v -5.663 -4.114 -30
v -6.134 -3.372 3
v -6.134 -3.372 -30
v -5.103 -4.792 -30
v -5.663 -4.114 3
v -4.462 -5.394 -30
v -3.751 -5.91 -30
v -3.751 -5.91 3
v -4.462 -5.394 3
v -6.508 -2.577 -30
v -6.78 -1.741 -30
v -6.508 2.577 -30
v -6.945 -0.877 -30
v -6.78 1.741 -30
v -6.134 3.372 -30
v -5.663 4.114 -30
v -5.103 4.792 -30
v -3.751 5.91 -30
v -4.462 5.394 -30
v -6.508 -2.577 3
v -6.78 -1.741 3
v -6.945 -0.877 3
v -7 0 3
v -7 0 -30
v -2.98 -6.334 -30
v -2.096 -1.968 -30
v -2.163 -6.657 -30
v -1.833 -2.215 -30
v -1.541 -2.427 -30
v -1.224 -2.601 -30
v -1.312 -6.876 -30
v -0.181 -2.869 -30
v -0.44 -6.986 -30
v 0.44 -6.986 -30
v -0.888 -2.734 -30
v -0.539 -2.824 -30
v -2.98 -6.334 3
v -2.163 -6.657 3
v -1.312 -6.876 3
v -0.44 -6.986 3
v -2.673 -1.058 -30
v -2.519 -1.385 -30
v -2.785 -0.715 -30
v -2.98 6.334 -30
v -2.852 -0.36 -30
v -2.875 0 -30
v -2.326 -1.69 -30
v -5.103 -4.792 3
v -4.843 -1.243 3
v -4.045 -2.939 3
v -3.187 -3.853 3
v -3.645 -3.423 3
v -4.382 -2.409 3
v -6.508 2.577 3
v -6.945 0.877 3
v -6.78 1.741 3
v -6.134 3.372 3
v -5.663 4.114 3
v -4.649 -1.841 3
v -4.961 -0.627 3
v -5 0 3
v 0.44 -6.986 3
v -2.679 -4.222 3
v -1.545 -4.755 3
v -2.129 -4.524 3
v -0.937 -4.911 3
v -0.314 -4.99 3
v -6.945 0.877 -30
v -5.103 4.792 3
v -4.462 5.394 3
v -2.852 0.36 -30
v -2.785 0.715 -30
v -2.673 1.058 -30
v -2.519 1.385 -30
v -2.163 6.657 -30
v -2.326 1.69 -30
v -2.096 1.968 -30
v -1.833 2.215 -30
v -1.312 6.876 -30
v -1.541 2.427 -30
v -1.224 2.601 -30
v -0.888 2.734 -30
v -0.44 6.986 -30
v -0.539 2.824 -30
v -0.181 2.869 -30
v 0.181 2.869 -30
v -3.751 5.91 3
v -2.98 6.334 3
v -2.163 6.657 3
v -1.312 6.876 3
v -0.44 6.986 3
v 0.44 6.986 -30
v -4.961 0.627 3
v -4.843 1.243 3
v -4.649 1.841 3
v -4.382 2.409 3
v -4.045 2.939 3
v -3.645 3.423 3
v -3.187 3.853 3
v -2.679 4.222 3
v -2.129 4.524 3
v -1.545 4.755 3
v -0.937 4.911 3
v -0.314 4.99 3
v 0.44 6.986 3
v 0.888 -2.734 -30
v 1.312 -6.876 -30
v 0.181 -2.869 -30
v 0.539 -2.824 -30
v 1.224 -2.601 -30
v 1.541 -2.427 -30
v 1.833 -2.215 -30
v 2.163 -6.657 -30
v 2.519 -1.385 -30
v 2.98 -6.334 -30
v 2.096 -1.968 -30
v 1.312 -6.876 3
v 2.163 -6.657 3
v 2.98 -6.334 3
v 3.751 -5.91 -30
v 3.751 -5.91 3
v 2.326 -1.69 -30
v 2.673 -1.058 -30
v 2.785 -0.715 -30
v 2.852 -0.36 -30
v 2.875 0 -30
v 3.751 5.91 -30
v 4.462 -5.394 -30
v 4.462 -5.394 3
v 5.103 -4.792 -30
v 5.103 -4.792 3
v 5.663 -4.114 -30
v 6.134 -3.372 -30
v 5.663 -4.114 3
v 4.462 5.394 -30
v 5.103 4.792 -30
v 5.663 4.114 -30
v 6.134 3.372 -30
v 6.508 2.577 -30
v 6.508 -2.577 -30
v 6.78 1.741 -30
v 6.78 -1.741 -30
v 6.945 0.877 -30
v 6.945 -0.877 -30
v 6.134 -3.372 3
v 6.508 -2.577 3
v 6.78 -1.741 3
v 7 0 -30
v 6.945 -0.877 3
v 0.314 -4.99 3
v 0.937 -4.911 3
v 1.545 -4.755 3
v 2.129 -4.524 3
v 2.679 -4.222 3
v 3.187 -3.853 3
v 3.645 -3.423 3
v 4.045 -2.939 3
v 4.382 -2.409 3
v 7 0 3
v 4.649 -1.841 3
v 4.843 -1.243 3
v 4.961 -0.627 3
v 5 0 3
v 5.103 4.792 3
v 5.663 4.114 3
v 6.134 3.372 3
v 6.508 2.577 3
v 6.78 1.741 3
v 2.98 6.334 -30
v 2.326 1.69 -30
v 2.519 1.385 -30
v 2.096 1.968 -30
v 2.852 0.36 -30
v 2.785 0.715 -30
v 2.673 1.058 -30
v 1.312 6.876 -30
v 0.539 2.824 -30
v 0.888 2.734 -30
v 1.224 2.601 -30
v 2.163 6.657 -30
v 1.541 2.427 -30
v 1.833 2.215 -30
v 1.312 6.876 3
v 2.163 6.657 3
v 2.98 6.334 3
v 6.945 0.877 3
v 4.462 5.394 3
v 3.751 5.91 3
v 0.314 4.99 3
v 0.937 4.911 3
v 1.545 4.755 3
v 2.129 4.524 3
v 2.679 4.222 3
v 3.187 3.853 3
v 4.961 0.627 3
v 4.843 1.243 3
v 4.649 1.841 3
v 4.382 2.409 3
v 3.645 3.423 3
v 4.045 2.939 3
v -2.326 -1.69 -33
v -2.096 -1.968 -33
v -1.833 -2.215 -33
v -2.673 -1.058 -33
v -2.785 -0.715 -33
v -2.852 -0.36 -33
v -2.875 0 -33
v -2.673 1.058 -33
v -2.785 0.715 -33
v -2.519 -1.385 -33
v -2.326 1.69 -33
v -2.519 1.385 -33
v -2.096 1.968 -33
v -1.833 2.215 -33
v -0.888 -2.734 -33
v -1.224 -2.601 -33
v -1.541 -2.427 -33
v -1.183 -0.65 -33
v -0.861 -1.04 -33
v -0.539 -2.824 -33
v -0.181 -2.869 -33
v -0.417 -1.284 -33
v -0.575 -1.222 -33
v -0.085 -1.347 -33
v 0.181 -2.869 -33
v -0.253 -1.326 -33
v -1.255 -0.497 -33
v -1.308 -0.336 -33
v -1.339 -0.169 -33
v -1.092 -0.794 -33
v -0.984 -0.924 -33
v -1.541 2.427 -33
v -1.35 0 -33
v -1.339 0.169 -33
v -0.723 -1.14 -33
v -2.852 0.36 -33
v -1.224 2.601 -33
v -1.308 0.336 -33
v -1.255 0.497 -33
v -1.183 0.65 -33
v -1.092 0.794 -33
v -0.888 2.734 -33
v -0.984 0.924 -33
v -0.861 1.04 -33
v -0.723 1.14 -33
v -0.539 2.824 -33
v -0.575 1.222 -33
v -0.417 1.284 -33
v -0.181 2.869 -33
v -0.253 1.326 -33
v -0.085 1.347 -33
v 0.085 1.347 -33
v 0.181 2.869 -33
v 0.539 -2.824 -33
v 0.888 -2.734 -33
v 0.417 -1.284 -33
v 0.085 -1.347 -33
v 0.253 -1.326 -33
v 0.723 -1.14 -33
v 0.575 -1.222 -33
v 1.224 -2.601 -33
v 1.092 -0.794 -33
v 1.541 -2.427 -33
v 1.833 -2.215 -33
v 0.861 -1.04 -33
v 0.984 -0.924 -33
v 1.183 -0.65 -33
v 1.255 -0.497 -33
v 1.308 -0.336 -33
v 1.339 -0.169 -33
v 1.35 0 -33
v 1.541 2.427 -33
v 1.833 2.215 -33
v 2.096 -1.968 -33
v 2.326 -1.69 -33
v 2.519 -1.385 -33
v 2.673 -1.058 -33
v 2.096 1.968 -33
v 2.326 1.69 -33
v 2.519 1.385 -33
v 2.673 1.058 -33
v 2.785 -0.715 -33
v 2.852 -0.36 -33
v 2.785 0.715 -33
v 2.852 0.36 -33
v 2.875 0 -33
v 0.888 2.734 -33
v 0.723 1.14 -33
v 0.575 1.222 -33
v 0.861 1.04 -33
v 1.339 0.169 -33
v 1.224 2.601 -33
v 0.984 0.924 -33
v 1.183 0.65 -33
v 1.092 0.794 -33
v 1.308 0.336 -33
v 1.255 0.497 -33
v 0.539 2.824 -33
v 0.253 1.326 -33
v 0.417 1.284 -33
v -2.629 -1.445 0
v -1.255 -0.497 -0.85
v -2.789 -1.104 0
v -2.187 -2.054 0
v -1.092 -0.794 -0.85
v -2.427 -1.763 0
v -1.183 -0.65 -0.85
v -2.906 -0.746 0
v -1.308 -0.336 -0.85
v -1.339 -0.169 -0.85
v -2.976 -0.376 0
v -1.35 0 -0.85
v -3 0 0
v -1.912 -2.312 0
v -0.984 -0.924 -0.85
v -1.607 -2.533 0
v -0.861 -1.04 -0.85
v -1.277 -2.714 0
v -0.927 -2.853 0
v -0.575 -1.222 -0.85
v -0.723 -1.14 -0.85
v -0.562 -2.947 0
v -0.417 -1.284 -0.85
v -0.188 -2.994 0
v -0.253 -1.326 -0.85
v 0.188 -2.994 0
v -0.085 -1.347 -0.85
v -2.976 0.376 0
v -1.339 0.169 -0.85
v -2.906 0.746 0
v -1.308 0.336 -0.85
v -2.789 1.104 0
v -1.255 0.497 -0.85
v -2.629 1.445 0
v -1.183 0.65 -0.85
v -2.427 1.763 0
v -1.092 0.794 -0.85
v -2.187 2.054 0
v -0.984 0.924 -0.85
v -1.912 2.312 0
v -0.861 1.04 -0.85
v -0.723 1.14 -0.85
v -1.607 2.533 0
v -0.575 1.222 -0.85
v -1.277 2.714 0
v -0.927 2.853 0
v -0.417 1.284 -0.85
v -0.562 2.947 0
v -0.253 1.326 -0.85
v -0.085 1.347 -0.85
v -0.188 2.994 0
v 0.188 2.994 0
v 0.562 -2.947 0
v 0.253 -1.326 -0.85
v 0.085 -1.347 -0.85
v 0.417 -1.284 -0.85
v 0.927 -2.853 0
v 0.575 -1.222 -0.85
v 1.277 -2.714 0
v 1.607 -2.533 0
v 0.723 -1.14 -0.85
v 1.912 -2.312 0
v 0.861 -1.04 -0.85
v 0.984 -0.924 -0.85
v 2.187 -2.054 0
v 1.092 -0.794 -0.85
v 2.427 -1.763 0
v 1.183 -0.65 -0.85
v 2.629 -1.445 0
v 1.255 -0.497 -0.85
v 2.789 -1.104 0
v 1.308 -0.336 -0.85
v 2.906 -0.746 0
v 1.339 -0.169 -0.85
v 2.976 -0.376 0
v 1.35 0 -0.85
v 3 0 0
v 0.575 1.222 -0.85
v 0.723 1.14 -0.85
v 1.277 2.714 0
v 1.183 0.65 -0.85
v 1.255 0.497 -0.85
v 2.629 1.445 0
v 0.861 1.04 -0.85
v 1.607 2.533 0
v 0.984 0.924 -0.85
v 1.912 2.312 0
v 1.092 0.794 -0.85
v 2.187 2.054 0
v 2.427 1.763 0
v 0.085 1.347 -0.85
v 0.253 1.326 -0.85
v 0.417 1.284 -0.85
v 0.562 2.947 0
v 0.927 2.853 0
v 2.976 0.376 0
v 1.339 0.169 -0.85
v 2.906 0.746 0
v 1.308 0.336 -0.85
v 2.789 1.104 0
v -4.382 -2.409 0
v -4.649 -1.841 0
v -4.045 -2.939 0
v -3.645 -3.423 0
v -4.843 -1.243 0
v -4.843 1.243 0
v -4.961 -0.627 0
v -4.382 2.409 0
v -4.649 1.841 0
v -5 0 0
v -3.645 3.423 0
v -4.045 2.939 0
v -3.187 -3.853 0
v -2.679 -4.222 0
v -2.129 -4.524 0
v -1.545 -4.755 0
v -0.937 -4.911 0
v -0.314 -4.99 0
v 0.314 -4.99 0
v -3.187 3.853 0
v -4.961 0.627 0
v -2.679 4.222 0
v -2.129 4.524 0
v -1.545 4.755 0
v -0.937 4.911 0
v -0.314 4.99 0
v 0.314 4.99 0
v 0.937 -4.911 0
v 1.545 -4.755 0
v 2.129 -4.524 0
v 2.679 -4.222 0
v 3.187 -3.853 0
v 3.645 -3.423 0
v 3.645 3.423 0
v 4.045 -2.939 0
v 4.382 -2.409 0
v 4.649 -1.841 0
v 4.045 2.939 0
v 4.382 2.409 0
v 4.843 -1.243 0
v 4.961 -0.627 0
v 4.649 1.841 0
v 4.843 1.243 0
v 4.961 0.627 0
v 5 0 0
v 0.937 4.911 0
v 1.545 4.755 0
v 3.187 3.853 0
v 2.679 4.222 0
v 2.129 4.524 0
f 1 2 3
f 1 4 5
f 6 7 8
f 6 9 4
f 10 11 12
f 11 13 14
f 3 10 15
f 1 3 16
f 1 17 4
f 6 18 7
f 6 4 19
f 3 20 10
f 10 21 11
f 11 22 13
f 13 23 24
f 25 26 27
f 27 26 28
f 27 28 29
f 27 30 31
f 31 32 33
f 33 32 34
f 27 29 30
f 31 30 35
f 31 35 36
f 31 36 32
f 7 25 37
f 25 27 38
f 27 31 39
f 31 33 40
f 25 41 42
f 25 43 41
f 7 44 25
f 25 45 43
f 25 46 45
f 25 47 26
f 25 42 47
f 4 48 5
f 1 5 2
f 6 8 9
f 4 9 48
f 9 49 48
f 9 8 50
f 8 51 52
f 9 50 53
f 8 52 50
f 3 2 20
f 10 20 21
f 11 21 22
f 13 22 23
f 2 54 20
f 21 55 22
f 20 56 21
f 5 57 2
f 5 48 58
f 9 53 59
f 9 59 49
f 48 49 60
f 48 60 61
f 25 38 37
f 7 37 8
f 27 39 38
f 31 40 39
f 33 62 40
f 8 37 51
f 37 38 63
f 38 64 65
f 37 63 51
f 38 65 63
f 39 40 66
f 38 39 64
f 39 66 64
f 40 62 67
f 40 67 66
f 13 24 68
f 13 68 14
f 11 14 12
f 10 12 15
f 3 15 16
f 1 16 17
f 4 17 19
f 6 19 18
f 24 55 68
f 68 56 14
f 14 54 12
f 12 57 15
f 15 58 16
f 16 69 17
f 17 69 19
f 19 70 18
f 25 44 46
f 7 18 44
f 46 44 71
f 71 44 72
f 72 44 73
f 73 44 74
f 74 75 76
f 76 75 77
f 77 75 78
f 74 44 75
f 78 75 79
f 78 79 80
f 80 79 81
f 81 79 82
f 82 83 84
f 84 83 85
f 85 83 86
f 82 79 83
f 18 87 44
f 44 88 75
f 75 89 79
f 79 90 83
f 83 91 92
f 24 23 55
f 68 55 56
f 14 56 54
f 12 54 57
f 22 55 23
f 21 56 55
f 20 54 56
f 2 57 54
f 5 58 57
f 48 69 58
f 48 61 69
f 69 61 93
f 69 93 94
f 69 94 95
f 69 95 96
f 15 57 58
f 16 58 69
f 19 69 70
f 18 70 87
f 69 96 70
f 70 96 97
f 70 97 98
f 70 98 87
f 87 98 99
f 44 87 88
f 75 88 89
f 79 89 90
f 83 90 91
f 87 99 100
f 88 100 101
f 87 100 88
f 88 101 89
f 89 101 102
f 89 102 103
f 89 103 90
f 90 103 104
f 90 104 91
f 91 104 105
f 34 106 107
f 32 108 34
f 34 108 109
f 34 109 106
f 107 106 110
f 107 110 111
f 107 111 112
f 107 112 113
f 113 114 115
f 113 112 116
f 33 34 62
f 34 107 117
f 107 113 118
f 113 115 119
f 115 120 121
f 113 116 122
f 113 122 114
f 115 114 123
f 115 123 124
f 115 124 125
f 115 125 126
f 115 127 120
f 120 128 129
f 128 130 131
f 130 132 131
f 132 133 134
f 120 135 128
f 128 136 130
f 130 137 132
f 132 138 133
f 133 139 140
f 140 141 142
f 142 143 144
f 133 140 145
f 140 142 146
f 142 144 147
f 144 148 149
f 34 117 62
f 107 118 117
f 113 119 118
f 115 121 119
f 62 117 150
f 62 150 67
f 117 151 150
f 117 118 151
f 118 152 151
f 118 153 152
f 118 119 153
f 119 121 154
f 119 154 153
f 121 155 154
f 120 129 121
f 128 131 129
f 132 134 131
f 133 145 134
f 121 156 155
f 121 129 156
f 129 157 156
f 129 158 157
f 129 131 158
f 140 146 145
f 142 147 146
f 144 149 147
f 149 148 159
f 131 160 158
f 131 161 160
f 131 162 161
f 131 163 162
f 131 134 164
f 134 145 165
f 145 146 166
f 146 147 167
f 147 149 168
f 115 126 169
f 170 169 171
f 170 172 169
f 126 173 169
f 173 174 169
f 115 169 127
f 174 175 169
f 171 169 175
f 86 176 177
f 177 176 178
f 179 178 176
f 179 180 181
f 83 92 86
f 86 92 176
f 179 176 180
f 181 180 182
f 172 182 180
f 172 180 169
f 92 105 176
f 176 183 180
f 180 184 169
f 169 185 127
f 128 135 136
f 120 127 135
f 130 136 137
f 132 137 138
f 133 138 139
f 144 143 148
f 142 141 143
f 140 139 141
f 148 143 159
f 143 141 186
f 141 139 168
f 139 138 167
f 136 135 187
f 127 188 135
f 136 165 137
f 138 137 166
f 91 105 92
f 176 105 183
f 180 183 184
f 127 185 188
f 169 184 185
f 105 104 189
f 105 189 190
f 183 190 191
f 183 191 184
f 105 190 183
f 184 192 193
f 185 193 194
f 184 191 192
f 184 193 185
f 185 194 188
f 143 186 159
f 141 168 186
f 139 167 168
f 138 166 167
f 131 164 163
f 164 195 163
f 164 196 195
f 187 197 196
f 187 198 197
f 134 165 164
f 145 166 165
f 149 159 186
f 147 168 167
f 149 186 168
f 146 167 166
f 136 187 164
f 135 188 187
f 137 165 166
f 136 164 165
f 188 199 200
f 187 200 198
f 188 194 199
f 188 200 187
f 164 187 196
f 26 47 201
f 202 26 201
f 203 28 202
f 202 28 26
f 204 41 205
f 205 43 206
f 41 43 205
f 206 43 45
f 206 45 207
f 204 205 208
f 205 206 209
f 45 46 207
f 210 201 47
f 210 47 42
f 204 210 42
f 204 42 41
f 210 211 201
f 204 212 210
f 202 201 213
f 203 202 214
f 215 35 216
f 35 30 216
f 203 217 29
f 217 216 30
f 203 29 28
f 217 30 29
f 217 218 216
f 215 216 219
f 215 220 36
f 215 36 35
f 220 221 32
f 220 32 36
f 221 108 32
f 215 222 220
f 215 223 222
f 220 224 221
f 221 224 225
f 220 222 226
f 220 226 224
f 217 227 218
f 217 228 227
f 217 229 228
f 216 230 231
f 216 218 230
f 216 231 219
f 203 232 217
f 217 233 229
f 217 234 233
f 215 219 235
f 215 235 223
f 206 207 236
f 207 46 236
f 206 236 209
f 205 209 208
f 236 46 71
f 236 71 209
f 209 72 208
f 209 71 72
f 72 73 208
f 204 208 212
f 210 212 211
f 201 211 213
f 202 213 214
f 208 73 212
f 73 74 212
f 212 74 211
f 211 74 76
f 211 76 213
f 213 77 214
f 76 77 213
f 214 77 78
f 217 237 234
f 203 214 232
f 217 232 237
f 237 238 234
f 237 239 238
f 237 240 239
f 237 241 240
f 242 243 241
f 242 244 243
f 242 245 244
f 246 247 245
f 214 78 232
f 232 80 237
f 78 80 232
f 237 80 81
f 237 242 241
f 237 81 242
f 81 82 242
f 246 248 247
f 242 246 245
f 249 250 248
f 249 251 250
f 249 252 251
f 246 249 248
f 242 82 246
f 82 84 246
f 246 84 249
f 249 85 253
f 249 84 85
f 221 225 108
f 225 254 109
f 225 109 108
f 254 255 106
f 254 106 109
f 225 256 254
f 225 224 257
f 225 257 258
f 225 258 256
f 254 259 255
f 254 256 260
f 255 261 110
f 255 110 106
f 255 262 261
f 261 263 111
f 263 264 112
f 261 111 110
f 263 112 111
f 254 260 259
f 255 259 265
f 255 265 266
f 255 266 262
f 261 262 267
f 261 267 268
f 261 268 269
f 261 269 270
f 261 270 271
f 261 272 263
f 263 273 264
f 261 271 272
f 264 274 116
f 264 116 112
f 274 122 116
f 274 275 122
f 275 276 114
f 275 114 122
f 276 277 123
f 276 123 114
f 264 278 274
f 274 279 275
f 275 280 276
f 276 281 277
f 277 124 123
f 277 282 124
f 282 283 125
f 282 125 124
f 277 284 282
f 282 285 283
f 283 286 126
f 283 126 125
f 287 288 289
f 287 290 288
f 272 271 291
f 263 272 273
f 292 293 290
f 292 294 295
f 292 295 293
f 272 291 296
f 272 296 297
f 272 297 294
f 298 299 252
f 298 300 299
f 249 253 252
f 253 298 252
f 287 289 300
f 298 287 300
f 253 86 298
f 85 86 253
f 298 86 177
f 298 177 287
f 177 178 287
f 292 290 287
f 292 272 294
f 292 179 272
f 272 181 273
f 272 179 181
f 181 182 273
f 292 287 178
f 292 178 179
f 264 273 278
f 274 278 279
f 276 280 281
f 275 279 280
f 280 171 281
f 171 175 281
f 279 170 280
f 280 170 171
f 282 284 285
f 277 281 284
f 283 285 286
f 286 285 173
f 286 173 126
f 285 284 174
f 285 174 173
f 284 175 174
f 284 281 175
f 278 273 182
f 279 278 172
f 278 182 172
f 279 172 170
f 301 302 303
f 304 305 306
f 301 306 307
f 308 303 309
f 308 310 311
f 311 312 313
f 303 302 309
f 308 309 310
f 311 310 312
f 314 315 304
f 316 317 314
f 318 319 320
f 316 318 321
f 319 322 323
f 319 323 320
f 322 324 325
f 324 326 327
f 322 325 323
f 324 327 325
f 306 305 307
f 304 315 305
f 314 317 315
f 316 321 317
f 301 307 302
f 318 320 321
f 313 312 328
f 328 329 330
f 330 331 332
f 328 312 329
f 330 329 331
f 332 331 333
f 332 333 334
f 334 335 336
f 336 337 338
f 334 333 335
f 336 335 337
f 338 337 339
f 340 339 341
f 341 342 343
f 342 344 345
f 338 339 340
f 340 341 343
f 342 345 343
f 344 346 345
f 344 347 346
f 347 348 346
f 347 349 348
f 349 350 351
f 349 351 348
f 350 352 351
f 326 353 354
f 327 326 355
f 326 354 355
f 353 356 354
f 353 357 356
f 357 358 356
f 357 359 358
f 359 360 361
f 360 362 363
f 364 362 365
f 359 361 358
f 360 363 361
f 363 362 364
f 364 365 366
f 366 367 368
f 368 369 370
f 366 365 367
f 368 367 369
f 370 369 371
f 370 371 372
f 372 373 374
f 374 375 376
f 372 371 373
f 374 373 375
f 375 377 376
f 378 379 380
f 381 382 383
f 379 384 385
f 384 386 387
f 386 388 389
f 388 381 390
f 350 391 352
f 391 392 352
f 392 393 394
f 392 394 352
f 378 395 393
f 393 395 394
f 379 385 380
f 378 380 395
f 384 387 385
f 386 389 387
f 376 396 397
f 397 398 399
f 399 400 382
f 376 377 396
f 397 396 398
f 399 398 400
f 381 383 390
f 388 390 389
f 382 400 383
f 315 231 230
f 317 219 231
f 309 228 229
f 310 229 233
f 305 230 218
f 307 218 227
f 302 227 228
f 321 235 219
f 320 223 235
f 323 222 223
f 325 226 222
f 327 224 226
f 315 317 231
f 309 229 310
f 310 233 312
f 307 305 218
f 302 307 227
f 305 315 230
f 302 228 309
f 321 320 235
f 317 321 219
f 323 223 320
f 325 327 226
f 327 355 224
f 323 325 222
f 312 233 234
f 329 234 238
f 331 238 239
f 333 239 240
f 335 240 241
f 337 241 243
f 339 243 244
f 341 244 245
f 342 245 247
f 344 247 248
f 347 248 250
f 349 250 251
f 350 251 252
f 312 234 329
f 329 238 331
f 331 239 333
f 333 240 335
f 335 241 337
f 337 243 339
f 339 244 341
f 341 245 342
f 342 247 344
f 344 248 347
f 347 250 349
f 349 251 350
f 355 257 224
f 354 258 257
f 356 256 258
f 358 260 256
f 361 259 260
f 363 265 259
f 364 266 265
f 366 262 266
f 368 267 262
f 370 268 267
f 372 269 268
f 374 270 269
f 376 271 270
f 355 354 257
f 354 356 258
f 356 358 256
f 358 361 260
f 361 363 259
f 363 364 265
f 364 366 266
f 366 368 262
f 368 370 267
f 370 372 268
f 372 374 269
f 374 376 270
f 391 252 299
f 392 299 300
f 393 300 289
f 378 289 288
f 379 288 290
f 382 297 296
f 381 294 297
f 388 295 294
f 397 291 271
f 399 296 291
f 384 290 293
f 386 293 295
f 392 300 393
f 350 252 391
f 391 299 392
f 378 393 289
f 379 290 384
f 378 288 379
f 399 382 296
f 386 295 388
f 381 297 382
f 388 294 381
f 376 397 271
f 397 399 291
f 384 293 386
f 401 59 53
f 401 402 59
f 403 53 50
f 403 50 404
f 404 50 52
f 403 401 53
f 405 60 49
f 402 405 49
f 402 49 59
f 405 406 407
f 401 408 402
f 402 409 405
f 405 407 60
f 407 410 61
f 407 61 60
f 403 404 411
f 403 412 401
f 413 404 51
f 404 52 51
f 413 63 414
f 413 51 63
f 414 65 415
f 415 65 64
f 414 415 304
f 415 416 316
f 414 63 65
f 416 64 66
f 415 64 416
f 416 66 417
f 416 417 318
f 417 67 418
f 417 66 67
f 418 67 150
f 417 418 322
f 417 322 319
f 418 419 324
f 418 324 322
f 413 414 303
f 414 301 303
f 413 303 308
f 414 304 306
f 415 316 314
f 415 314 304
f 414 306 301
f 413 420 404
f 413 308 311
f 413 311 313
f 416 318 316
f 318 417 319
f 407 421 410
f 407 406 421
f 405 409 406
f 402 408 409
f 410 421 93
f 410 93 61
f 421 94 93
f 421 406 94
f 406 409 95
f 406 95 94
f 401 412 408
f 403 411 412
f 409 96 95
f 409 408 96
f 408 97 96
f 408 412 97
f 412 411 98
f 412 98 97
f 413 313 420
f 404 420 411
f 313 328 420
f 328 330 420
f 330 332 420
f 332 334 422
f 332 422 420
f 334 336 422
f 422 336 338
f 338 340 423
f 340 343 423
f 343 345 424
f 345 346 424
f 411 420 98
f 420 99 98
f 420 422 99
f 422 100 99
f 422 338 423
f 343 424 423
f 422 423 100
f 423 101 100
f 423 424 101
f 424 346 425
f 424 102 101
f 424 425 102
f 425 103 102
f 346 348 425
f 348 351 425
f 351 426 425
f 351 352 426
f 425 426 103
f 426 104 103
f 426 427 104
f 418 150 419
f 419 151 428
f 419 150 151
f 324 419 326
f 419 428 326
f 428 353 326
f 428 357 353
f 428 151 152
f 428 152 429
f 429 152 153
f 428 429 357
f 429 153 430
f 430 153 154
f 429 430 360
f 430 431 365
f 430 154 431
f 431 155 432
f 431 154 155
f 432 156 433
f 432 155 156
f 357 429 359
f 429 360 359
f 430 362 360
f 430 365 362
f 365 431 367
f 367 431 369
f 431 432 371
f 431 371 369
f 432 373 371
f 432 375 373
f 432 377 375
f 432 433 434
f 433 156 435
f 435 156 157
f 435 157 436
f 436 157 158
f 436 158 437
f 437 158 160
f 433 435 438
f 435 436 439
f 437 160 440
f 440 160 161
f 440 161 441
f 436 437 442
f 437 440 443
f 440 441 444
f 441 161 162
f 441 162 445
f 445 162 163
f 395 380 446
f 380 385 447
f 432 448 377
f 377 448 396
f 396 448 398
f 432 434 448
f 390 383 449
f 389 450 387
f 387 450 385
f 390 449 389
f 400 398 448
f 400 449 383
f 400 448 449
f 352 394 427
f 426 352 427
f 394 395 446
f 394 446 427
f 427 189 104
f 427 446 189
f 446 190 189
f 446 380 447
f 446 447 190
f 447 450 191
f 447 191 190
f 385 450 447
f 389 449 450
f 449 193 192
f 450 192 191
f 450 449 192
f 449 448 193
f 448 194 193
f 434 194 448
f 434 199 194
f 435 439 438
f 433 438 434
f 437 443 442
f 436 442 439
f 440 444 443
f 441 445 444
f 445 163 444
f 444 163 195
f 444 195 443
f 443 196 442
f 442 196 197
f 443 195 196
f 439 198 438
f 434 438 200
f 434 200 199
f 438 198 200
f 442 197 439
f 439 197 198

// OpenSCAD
$fn = 50;

difference() {
	union() {
		translate(v = [0, 0, -30.0]) {
			cylinder(h = 33, r = 7.0);
		}
		#translate(v = [0, 0, -33.0]) {
			cylinder(h = 33, r = 2.875);
		}
	}
	union() {
		translate(v = [0, 0, 0]) {
			rotate(a = [0, 0, 0]) {
				difference() {
					union() {
						translate(v = [0, 0, -33.0]) {
							cylinder(h = 33, r = 1.0);
						}
						translate(v = [0, 0, -0.85]) {
							cylinder(h = 0.85, r1 = 1.35, r2 = 3.0);
						}
						translate(v = [0, 0, -33.0]) {
							cylinder(h = 33, r = 1.35);
						}
						translate(v = [0, 0, -33.0]) {
							cylinder(h = 33, r = 1.0);
						}
					}
					union();
				}
			}
		}
		#cylinder(h = 3, r = 5.0);
	}
}
